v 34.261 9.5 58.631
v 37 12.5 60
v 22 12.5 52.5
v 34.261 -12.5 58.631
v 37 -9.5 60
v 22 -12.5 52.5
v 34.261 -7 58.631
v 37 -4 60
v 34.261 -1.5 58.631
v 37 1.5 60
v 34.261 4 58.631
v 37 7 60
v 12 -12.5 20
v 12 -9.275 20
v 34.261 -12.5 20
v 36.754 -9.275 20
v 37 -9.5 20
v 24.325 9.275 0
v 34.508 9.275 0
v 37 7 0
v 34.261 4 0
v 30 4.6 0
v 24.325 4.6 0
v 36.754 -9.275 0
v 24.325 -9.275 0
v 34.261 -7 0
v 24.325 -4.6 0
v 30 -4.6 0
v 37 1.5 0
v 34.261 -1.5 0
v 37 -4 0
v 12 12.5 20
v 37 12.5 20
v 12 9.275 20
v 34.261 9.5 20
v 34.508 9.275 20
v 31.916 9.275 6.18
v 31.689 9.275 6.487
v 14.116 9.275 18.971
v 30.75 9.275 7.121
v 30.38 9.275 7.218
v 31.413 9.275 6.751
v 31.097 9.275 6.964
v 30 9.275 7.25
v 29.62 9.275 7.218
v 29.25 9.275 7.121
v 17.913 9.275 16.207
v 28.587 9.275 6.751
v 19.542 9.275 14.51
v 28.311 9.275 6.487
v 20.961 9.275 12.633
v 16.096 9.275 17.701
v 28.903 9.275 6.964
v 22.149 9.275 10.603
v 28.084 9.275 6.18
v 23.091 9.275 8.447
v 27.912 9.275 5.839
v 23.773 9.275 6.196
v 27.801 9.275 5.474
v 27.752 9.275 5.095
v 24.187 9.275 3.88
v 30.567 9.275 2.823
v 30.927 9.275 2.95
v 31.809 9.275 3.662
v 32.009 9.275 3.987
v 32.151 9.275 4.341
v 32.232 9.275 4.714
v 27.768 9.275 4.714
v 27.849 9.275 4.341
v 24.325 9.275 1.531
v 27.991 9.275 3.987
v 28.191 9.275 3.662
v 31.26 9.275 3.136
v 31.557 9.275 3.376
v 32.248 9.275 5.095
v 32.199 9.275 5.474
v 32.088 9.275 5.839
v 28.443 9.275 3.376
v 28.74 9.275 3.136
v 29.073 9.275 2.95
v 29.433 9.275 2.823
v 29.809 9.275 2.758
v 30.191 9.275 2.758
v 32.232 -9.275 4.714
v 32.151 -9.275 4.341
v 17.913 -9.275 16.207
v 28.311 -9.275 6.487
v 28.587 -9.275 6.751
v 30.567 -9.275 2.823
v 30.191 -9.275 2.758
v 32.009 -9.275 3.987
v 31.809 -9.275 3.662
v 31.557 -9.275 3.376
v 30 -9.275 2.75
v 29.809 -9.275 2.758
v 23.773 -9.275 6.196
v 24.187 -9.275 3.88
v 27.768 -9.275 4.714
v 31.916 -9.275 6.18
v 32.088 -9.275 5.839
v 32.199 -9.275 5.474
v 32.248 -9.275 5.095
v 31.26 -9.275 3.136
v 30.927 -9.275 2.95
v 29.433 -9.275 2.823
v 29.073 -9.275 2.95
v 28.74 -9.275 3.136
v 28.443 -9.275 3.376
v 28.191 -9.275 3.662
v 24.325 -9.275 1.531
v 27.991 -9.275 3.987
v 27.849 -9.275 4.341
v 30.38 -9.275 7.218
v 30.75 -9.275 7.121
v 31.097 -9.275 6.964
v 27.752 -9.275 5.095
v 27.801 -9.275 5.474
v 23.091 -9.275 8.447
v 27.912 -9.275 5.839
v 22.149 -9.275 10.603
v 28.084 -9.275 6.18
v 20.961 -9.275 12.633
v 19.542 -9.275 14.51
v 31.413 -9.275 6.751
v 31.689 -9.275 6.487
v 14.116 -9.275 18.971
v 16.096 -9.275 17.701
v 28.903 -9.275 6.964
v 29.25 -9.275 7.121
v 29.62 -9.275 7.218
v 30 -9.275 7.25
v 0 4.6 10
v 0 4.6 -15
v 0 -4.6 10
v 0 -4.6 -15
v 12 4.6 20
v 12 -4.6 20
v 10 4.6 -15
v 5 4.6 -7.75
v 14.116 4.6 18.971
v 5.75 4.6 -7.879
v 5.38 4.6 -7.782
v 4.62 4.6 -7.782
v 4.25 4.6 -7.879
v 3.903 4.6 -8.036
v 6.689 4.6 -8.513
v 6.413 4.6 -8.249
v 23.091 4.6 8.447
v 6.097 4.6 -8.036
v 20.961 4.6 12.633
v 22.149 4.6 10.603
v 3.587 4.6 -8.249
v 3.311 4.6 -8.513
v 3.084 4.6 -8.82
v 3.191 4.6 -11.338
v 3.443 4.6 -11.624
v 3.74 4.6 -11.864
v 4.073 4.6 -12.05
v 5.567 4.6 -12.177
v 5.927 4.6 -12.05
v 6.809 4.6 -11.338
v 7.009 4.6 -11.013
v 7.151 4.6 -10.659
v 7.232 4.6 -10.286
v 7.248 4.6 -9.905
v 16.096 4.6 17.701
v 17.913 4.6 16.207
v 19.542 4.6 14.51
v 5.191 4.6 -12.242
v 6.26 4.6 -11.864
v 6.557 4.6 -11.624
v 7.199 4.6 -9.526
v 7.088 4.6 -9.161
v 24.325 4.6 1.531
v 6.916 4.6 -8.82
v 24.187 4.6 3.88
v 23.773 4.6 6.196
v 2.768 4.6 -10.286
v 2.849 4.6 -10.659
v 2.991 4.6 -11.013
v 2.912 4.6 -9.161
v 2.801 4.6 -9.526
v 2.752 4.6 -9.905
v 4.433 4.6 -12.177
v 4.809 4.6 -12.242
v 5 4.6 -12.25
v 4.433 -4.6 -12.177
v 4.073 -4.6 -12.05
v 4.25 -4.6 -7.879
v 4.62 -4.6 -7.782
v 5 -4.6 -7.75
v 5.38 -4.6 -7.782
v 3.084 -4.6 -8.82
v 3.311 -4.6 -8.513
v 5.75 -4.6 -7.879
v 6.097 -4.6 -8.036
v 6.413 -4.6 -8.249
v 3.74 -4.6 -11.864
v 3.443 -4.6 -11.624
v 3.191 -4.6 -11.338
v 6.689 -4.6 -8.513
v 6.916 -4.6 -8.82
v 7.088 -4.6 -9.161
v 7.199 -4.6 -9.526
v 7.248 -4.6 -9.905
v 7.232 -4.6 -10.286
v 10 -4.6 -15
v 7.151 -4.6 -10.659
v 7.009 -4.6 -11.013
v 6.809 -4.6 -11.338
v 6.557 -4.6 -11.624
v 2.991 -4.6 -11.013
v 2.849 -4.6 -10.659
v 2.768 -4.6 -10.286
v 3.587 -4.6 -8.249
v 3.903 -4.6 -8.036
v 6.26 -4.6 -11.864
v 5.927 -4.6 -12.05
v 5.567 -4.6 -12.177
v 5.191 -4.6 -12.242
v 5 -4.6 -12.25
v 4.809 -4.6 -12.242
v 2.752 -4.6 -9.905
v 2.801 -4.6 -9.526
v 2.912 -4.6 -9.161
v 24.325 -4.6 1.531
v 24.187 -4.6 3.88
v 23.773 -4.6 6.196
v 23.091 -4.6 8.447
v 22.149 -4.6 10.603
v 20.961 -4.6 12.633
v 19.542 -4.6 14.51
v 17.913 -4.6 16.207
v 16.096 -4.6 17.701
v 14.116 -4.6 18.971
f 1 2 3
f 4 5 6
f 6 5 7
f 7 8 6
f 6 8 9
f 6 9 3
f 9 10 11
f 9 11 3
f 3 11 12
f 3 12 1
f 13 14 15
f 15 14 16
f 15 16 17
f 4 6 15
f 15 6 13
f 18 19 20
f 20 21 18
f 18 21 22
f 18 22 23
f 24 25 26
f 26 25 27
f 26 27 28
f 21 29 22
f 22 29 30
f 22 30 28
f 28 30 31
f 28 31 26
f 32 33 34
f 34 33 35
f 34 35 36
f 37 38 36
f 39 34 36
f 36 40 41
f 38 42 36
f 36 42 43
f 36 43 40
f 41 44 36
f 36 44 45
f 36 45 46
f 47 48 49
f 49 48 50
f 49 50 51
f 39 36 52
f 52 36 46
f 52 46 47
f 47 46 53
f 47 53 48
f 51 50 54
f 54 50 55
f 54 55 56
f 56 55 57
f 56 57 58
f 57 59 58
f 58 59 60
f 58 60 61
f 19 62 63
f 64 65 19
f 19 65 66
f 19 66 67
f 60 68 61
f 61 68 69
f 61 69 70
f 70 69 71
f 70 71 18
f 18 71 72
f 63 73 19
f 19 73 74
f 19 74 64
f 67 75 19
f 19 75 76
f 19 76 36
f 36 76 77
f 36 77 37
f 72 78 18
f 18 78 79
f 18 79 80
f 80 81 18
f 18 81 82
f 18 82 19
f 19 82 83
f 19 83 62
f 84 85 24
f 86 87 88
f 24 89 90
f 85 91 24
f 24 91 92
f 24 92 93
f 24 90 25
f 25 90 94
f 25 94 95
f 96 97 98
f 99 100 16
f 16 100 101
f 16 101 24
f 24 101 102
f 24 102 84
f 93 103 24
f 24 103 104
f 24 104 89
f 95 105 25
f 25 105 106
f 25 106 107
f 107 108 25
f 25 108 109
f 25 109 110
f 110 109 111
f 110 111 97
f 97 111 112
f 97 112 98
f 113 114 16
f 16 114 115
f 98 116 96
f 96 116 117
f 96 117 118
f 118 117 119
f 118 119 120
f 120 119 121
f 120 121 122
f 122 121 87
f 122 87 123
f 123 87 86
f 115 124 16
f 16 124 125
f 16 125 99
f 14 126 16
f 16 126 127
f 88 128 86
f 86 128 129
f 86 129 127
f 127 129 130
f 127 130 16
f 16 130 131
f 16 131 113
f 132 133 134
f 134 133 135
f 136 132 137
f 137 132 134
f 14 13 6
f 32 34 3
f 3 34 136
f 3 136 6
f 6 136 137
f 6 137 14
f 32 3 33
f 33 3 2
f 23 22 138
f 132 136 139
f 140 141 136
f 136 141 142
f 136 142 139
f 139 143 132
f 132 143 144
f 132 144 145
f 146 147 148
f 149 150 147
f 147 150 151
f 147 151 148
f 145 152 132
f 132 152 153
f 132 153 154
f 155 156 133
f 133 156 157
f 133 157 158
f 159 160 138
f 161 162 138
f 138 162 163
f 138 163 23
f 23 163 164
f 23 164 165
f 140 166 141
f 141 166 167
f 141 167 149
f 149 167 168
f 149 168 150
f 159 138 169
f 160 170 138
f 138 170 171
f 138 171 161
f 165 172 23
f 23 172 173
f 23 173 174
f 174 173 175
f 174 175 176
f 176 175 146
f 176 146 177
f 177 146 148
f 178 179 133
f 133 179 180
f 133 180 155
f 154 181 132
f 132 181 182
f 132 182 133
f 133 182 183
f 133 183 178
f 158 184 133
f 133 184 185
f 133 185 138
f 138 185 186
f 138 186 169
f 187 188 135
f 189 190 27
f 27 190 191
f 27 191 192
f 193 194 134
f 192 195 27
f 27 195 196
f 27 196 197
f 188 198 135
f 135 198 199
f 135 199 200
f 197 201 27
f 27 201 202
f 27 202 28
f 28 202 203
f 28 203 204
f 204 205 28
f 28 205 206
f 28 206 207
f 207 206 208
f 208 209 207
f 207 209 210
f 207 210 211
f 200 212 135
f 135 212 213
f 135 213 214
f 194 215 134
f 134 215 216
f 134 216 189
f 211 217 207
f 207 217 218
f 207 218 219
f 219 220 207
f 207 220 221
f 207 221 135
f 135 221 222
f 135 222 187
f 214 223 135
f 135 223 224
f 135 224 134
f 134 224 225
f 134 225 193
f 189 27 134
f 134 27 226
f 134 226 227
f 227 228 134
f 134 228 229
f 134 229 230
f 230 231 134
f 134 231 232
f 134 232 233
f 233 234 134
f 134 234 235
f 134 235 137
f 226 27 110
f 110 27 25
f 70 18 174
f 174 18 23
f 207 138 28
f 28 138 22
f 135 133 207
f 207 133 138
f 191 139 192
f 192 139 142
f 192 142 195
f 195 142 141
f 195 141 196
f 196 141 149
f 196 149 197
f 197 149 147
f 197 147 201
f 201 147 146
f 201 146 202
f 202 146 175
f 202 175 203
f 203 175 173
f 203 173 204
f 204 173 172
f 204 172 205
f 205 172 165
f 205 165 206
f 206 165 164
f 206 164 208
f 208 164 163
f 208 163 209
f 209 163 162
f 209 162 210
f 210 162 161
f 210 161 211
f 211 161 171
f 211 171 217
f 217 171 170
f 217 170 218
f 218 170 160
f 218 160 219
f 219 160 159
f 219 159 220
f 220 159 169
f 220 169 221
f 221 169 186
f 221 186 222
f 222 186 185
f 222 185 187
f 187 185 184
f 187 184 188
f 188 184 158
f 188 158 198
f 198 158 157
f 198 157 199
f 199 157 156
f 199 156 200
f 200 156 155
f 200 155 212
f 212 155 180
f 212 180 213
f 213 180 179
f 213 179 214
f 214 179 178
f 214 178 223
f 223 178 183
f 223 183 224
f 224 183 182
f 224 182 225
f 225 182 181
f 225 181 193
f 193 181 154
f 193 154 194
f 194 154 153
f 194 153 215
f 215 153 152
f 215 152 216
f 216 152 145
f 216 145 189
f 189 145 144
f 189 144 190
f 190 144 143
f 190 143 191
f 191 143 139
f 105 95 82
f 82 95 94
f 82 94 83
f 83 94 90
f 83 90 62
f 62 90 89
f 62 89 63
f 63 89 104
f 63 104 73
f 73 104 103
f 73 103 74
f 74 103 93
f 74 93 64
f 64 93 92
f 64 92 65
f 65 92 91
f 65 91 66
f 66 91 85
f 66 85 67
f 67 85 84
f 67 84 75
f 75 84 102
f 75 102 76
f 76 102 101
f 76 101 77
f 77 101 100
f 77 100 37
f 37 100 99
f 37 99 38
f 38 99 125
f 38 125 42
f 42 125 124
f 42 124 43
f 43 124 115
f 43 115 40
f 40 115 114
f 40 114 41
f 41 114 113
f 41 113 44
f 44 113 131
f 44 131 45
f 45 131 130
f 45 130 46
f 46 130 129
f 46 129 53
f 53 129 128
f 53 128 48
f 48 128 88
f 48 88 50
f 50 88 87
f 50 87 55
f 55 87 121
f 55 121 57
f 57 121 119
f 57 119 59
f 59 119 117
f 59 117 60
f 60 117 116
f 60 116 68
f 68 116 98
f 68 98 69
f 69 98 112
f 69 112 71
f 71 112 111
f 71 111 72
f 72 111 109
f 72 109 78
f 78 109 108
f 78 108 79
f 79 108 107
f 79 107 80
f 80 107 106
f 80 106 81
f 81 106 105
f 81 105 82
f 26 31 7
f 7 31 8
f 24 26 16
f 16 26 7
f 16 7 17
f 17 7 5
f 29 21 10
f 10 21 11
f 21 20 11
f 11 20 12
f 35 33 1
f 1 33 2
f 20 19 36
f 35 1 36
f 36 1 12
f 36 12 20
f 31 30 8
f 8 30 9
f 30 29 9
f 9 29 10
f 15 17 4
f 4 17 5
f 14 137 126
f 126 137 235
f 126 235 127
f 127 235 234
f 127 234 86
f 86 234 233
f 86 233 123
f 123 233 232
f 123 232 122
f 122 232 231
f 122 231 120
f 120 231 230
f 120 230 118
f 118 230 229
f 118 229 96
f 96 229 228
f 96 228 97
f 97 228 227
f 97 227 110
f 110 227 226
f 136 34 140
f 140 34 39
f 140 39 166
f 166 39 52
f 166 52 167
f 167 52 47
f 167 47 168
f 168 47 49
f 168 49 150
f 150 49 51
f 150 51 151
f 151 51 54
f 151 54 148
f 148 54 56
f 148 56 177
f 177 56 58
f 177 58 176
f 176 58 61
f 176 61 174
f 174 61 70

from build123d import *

# Parameters (mm, degrees)
BOSS_EXTRUDE1_DEPTH  = 12.5
SKETCH3_W            = 37
SKETCH3_H            = 20
CUT_EXTRUDE1_DEPTH   = 7.9
SKETCH4_W            = 37
SKETCH4_H            = 20
CUT_EXTRUDE2_DEPTH   = 7.9
SKETCH5_W            = 20
SKETCH5_H            = 18.55
BOSS_EXTRUDE2_DEPTH  = 12.675
BOSS_EXTRUDE3_DEPTH  = 9.2
M4_CLEARANCE_HOLE1_D = 4.5
CUT_EXTRUDE3_DEPTH   = 72.590851371
FILLET1_R            = 20


with BuildPart() as part:
    # Sketch2 → Boss-Extrude1 (new, symmetric)
    with BuildSketch(Plane(origin=(0, 0, 0), x_dir=(1, 0, 0), z_dir=(0, 1, 0))):
        Polygon((0, 0), (37, 0), (37, -60), (22, -52.5), (12, -20), (0, -10), align=None)
    extrude(amount=BOSS_EXTRUDE1_DEPTH, both=True)

    # Sketch3 → Cut-Extrude1 (cut)
    with BuildSketch(Plane(origin=(0, 12.5, 0), x_dir=(1, 0, 0), z_dir=(0, 1, 0))):
        with Locations((18.5, -10)):
            Rectangle(SKETCH3_W, SKETCH3_H)
    extrude(amount=-CUT_EXTRUDE1_DEPTH, mode=Mode.SUBTRACT)

    # Sketch4 → Cut-Extrude2 (cut)
    with BuildSketch(Plane(origin=(0, -12.5, 0), x_dir=(-1, 0, 0), z_dir=(0, -1, 0))):
        with Locations((-18.5, -10)):
            Rectangle(SKETCH4_W, SKETCH4_H)
    extrude(amount=-CUT_EXTRUDE2_DEPTH, mode=Mode.SUBTRACT)

    # Sketch5 → Boss-Extrude2 (add)
    with BuildSketch(Plane(origin=(37, 0, 0), x_dir=(0, 0, -1), z_dir=(1, 0, 0))):
        with Locations((-10, 0)):
            Rectangle(SKETCH5_W, SKETCH5_H)
    extrude(amount=-BOSS_EXTRUDE2_DEPTH)

    # Sketch10 → Boss-Extrude3 (add)
    with BuildSketch(Plane(origin=(0, 4.6, 0), x_dir=(1, 0, 0), z_dir=(0, 1, 0))):
        Polygon((30, 0), (10, 15), (0, 15), (0, 0), align=None)
    extrude(amount=-BOSS_EXTRUDE3_DEPTH)

    # M4 Clearance Hole1 (through all)
    with Locations(Plane(origin=(0, 9.275, 0), x_dir=(1, 0, 0), z_dir=(0, 1, 0))):
        with Locations((30, -5), (5, 10)):
            Hole(M4_CLEARANCE_HOLE1_D / 2)

    # Sketch8 → Cut-Extrude3 (cut, through all)
    with BuildSketch(Plane(origin=(0, 0, 0), x_dir=(-1, 0, 0), z_dir=(0, 0, -1))):
        Polygon((-34.261387212, 4), (-37, 7), (-37, 1.5), align=None)
        Polygon((-34.261387212, -1.5), (-37, 1.5), (-37, -4), align=None)
        Polygon((-34.261387212, 9.5), (-37, 12.5), (-37, 9.275), (-34.507862363, 9.275), align=None)
        Polygon((-34.507862363, 9.275), (-37, 9.275), (-37, 7), align=None)
        Polygon((-34.261387212, -7), (-37, -4), (-37, -9.275), (-36.753524849, -9.275), align=None)
        Polygon((-36.753524849, -9.275), (-37, -9.275), (-37, -9.5), align=None)
        Polygon((-34.261387212, -12.5), (-37, -9.5), (-37, -12.5), align=None)
    extrude(amount=-CUT_EXTRUDE3_DEPTH, mode=Mode.SUBTRACT)

    # Fillet1
    # the kernel refuses this fillet: 20 mm, written as the material it adds along each edge
    with BuildSketch(Plane(origin=(24.325, 41.571851206, 20), x_dir=(0, 0, -1), z_dir=(0, -1, 0))) as fillet1_piece_1_section:
        with BuildLine():
            CenterArc((18.468740482, -20), FILLET1_R, 90, 67.433839366)
            Line((0, -12.325), (-0.36937481, -12.1715))
            ThreePointArc((-0.36937481, -12.1715), (-0.4, -6.1625), (-0.4, 0))
            Line((-0.4, 0), (0, 0.4))
            Line((0, 0.4), (18.468740482, 0.4))
            Line((18.468740482, 0.4), (18.468740482, 0))
        make_face()
    fillet1_piece_1 = extrude(amount=50.846851206, mode=Mode.PRIVATE)
    fillet1_piece_1 = split(fillet1_piece_1, bisect_by=Plane(origin=(21.141865588, 9.275, 15.519731965), z_dir=(0, -1, 0)), keep=Keep.TOP, mode=Mode.PRIVATE)
    add(fillet1_piece_1)
    with BuildSketch(Plane(origin=(24.325, 9.275, 20), x_dir=(0, 0, -1), z_dir=(0, -1, 0))) as fillet1_piece_2_section:
        with BuildLine():
            CenterArc((18.468740482, -20), FILLET1_R, 90, 67.433839366)
            Line((0, -12.325), (-0.36937481, -12.1715))
            ThreePointArc((-0.36937481, -12.1715), (-0.4, -6.1625), (-0.4, 0))
            Line((-0.4, 0), (0, 0.4))
            Line((0, 0.4), (18.468740482, 0.4))
            Line((18.468740482, 0.4), (18.468740482, 0))
        make_face()
    fillet1_piece_2 = extrude(amount=50.846851206, mode=Mode.PRIVATE)
    fillet1_piece_2 = split(fillet1_piece_2, bisect_by=Plane(origin=(21.141865588, -9.275, 15.519731965), z_dir=(0, 1, 0)), keep=Keep.TOP, mode=Mode.PRIVATE)
    add(fillet1_piece_2)


solid = part.part
